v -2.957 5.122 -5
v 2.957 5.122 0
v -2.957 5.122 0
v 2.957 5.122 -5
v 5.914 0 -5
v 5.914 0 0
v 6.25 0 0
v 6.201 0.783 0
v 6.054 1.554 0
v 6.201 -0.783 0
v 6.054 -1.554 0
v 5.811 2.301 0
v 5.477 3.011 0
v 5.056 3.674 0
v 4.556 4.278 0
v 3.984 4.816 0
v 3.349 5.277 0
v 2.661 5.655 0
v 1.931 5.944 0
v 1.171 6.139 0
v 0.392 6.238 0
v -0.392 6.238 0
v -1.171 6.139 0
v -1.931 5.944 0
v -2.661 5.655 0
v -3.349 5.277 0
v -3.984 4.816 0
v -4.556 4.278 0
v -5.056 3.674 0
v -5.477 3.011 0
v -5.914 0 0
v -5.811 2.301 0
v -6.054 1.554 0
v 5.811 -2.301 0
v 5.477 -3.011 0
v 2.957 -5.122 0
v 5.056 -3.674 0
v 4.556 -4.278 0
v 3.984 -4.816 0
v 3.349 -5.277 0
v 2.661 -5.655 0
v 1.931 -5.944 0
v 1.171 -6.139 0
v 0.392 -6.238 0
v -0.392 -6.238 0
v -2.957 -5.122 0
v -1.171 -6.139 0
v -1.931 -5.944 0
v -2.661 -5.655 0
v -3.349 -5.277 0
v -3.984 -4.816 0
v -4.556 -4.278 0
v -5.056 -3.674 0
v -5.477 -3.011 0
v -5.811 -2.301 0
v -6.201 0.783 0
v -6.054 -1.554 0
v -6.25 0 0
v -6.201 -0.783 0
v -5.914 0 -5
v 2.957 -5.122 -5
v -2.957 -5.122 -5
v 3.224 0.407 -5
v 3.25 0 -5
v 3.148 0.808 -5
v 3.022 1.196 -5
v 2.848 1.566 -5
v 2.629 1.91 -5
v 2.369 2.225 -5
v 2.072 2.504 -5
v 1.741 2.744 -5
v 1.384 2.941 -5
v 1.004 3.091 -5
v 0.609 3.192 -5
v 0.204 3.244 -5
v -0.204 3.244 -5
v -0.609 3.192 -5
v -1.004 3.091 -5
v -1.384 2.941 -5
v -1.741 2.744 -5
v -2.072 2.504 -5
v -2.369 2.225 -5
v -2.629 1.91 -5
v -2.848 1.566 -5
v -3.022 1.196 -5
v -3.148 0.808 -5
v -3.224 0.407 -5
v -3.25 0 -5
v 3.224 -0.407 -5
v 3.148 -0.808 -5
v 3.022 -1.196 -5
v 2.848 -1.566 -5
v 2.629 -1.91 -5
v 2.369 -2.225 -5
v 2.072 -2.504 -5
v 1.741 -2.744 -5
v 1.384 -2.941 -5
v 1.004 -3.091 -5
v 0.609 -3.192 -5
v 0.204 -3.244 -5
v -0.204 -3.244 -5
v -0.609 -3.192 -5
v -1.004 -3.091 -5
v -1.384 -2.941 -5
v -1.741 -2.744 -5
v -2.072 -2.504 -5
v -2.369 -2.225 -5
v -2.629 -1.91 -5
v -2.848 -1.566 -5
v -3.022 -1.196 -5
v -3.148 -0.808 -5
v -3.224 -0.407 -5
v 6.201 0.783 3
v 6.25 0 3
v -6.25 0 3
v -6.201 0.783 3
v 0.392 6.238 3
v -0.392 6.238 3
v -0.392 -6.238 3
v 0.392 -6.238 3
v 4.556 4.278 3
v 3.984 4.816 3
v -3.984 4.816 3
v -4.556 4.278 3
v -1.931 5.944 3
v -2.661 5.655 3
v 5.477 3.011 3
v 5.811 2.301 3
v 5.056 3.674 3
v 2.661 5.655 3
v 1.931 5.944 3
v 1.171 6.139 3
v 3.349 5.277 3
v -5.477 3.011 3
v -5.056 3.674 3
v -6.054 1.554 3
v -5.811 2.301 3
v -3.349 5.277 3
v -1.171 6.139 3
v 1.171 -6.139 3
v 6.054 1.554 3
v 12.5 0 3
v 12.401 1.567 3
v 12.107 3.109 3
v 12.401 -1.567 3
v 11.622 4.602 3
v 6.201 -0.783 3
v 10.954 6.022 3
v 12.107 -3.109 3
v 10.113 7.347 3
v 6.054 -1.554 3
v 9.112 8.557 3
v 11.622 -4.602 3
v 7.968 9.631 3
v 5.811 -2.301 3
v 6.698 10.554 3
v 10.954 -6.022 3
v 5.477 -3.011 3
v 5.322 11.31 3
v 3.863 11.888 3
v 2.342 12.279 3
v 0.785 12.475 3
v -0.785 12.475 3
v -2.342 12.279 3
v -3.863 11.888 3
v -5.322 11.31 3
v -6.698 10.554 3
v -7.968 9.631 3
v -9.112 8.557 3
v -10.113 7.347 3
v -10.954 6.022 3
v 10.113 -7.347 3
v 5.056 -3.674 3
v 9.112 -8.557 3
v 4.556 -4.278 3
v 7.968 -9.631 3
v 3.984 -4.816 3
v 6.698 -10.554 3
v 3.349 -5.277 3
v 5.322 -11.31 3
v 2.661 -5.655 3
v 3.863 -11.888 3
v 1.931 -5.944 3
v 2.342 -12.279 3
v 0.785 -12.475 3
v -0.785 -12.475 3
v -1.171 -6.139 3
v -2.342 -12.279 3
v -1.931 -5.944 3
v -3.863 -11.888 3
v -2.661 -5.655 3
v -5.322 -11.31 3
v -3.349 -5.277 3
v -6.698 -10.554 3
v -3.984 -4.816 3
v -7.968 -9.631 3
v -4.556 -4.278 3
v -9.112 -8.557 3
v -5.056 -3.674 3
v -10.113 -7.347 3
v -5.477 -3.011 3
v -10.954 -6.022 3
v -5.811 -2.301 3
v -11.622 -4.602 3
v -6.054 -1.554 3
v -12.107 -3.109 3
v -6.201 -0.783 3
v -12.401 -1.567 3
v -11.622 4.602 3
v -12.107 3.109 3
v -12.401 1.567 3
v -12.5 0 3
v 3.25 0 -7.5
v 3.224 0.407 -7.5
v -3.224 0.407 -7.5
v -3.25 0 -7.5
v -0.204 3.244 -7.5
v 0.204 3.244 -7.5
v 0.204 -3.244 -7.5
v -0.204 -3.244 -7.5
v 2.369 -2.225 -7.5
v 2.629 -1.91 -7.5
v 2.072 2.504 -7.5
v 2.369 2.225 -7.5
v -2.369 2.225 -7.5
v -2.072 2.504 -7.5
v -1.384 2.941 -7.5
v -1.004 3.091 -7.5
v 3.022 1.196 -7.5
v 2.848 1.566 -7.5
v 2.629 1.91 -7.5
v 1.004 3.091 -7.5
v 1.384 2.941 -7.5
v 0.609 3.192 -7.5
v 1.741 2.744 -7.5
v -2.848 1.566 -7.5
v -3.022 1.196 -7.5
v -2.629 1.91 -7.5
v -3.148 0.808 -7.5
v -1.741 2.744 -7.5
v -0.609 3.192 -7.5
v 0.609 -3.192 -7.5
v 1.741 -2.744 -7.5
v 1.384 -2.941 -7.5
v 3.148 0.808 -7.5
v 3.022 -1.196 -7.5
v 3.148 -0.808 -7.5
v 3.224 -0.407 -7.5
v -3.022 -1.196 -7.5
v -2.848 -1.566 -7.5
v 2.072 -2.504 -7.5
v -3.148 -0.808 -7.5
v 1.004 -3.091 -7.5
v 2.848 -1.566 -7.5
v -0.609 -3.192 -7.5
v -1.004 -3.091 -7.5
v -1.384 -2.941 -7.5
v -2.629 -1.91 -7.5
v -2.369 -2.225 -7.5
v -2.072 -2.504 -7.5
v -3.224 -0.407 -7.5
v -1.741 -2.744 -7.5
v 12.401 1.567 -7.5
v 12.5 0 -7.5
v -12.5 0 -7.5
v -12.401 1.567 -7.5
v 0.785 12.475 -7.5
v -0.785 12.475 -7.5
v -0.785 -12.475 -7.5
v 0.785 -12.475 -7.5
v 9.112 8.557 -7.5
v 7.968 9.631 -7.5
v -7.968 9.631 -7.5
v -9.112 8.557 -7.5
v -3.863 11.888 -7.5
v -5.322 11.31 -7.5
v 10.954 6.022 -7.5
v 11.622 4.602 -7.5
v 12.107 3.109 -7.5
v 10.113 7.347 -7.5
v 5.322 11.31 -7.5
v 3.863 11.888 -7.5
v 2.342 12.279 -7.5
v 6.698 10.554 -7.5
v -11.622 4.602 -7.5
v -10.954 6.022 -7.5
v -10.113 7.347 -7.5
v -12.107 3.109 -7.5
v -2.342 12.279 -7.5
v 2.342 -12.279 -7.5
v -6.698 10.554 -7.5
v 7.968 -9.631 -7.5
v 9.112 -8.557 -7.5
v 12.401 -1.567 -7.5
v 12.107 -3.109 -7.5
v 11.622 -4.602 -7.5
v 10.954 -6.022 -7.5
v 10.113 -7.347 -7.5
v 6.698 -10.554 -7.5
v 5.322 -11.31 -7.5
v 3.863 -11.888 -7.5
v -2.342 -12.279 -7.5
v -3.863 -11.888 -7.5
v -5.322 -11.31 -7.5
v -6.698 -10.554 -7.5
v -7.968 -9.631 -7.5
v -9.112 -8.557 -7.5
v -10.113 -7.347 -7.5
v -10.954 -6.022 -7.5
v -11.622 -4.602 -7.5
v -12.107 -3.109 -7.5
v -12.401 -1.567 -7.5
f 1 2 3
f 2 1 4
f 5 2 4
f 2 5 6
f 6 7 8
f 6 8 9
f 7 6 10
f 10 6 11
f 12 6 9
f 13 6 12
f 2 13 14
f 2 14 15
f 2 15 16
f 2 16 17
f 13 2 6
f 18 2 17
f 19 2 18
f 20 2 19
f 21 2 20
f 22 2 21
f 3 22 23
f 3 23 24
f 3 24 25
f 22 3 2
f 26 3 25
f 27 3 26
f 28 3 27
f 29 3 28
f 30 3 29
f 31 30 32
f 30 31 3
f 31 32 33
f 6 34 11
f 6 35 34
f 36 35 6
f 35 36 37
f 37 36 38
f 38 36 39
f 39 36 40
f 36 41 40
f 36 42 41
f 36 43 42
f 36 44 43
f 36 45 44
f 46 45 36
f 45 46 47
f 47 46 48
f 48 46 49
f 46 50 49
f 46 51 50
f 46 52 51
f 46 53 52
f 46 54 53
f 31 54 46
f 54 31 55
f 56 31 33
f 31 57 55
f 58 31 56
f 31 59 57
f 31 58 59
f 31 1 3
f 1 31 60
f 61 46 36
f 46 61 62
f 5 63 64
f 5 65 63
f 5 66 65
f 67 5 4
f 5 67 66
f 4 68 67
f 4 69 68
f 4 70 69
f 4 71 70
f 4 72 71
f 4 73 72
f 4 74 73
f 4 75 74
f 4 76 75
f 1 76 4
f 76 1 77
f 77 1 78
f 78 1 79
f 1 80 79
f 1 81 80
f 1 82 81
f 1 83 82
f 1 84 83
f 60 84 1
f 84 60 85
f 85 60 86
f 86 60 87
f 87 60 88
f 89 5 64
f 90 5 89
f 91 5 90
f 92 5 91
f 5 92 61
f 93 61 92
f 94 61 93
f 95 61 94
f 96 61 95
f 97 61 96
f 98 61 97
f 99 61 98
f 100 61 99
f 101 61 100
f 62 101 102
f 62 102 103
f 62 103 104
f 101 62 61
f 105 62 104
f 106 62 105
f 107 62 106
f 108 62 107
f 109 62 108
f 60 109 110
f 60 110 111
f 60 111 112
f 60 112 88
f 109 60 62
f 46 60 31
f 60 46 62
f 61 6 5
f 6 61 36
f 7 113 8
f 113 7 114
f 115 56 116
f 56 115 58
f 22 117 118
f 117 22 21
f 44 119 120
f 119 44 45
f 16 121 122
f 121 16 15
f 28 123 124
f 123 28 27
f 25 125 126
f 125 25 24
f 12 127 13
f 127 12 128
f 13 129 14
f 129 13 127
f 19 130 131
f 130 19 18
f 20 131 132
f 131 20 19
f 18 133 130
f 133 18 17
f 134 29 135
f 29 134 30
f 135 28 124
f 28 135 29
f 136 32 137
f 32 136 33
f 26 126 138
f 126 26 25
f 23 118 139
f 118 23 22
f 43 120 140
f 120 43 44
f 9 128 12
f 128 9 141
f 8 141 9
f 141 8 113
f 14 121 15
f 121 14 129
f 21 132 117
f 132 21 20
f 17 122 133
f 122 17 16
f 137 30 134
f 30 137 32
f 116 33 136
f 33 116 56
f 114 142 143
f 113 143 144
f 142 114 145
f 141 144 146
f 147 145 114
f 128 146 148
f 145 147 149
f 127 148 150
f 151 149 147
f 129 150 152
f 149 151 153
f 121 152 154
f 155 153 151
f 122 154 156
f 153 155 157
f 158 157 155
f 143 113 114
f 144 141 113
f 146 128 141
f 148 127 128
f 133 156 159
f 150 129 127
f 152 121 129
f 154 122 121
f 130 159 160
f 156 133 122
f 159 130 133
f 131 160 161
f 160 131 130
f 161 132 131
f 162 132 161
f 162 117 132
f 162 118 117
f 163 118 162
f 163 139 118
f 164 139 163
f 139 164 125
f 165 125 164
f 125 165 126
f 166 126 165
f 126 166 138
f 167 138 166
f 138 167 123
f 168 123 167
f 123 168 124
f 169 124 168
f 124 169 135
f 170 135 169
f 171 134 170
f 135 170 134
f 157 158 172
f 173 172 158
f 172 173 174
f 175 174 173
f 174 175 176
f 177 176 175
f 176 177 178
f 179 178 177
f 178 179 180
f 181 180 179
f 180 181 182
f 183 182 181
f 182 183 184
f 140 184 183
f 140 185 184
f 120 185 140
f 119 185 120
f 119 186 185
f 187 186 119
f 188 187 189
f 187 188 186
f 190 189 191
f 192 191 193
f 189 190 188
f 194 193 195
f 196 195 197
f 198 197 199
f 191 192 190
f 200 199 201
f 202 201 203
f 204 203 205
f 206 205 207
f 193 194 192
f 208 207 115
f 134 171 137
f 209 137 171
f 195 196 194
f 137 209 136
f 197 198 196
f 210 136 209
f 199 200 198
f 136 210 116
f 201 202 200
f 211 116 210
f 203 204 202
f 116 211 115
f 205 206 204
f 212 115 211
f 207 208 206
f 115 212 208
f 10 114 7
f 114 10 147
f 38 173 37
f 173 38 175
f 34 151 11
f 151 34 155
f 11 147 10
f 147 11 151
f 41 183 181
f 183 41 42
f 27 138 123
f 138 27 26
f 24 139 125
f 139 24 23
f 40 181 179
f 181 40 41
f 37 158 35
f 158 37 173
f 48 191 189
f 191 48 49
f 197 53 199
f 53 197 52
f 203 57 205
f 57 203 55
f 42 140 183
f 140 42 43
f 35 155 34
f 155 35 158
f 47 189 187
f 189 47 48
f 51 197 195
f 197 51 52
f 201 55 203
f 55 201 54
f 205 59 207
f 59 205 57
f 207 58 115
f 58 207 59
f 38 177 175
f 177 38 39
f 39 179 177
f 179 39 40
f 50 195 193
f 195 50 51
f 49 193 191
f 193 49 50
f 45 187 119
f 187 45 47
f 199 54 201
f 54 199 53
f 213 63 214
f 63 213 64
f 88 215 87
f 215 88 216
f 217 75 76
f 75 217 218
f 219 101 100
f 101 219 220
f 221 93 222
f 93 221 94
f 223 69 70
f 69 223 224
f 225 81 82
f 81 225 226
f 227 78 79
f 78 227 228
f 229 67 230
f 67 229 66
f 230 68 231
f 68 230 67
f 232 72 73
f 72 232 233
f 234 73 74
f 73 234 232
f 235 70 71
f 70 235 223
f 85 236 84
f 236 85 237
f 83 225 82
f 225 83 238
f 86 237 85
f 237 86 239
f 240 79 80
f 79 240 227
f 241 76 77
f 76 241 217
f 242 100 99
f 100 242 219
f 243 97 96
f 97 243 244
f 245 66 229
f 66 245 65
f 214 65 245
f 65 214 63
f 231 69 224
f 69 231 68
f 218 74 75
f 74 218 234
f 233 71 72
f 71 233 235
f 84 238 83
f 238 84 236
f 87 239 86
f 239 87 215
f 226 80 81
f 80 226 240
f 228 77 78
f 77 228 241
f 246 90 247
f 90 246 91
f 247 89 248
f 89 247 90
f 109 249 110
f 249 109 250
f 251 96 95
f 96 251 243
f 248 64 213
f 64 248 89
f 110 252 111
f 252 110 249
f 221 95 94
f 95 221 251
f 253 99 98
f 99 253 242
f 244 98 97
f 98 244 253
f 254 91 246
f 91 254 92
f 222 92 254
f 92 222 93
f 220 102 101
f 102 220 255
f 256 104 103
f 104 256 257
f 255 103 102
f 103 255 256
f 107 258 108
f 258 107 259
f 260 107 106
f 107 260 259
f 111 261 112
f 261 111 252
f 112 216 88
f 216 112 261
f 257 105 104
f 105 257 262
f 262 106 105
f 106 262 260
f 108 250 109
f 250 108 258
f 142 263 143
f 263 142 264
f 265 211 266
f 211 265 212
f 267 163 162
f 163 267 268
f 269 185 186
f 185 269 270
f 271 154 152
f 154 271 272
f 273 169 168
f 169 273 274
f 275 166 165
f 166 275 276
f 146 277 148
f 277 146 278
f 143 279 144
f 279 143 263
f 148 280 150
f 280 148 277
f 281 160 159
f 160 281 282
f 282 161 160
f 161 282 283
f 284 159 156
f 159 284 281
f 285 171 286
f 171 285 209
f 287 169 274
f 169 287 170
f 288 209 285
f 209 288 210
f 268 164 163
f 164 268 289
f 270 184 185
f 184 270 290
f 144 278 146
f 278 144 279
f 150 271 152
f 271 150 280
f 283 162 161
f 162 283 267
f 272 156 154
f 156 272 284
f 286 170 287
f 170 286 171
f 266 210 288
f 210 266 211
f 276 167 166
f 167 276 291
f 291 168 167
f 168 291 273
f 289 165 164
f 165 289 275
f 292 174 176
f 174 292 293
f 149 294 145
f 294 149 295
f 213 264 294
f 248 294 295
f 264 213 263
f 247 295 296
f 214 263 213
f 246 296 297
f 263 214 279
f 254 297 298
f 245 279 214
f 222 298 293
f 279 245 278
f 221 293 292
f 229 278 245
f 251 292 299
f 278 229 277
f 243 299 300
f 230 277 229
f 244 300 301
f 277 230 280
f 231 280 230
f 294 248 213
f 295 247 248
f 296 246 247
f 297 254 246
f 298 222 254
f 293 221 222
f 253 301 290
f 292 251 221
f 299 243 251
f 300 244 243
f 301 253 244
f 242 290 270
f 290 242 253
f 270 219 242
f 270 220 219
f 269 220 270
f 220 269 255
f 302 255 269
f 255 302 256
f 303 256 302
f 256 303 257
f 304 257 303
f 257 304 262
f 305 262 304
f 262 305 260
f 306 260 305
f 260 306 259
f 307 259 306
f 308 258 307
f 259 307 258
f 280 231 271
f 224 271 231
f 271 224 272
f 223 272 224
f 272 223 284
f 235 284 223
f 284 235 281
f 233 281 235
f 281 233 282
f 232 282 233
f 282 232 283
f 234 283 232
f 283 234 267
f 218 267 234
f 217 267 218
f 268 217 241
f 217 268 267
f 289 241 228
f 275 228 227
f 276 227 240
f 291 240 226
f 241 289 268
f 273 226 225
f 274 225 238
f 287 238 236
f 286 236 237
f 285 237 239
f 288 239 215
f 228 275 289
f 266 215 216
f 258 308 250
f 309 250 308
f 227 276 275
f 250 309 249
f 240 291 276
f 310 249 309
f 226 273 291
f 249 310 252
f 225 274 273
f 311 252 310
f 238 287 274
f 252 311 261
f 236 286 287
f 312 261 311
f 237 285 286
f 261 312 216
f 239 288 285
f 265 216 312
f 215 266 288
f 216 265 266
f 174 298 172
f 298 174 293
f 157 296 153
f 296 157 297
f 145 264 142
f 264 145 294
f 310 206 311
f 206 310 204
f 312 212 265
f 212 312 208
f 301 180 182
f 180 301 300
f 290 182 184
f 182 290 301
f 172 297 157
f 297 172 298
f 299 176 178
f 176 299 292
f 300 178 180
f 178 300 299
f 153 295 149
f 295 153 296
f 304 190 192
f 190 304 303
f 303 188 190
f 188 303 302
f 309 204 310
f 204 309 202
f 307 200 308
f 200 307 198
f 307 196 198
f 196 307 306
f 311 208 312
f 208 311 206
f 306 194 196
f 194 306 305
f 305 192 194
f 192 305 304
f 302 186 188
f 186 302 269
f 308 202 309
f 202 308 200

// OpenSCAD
$fn = 50;


difference() {
	union() {
		translate(v = [0, 0, -7.5000000000]) {
			cylinder(h = 10.5000000000, r = 12.5000000000);
		}
	}
	union() {
		translate(v = [0, 0, 0]) {
			rotate(a = [0, 0, 0]) {
				difference() {
					union() {
						translate(v = [0, 0, -5]) {
							linear_extrude(height = 5) {
								polygon(points = [[5.9142500000, 0.0000000000], [2.9571250000, 5.1218907443], [-2.9571250000, 5.1218907443], [-5.9142500000, 0.0000000000], [-2.9571250000, -5.1218907443], [2.9571250000, -5.1218907443]]);
							}
						}
					}
					union();
				}
			}
		}
		#cylinder(h = 3, r = 6.2500000000);
		#translate(v = [0, 0, -100.0000000000]) {
			cylinder(h = 200, r = 3.2500000000);
		}
	}
}
